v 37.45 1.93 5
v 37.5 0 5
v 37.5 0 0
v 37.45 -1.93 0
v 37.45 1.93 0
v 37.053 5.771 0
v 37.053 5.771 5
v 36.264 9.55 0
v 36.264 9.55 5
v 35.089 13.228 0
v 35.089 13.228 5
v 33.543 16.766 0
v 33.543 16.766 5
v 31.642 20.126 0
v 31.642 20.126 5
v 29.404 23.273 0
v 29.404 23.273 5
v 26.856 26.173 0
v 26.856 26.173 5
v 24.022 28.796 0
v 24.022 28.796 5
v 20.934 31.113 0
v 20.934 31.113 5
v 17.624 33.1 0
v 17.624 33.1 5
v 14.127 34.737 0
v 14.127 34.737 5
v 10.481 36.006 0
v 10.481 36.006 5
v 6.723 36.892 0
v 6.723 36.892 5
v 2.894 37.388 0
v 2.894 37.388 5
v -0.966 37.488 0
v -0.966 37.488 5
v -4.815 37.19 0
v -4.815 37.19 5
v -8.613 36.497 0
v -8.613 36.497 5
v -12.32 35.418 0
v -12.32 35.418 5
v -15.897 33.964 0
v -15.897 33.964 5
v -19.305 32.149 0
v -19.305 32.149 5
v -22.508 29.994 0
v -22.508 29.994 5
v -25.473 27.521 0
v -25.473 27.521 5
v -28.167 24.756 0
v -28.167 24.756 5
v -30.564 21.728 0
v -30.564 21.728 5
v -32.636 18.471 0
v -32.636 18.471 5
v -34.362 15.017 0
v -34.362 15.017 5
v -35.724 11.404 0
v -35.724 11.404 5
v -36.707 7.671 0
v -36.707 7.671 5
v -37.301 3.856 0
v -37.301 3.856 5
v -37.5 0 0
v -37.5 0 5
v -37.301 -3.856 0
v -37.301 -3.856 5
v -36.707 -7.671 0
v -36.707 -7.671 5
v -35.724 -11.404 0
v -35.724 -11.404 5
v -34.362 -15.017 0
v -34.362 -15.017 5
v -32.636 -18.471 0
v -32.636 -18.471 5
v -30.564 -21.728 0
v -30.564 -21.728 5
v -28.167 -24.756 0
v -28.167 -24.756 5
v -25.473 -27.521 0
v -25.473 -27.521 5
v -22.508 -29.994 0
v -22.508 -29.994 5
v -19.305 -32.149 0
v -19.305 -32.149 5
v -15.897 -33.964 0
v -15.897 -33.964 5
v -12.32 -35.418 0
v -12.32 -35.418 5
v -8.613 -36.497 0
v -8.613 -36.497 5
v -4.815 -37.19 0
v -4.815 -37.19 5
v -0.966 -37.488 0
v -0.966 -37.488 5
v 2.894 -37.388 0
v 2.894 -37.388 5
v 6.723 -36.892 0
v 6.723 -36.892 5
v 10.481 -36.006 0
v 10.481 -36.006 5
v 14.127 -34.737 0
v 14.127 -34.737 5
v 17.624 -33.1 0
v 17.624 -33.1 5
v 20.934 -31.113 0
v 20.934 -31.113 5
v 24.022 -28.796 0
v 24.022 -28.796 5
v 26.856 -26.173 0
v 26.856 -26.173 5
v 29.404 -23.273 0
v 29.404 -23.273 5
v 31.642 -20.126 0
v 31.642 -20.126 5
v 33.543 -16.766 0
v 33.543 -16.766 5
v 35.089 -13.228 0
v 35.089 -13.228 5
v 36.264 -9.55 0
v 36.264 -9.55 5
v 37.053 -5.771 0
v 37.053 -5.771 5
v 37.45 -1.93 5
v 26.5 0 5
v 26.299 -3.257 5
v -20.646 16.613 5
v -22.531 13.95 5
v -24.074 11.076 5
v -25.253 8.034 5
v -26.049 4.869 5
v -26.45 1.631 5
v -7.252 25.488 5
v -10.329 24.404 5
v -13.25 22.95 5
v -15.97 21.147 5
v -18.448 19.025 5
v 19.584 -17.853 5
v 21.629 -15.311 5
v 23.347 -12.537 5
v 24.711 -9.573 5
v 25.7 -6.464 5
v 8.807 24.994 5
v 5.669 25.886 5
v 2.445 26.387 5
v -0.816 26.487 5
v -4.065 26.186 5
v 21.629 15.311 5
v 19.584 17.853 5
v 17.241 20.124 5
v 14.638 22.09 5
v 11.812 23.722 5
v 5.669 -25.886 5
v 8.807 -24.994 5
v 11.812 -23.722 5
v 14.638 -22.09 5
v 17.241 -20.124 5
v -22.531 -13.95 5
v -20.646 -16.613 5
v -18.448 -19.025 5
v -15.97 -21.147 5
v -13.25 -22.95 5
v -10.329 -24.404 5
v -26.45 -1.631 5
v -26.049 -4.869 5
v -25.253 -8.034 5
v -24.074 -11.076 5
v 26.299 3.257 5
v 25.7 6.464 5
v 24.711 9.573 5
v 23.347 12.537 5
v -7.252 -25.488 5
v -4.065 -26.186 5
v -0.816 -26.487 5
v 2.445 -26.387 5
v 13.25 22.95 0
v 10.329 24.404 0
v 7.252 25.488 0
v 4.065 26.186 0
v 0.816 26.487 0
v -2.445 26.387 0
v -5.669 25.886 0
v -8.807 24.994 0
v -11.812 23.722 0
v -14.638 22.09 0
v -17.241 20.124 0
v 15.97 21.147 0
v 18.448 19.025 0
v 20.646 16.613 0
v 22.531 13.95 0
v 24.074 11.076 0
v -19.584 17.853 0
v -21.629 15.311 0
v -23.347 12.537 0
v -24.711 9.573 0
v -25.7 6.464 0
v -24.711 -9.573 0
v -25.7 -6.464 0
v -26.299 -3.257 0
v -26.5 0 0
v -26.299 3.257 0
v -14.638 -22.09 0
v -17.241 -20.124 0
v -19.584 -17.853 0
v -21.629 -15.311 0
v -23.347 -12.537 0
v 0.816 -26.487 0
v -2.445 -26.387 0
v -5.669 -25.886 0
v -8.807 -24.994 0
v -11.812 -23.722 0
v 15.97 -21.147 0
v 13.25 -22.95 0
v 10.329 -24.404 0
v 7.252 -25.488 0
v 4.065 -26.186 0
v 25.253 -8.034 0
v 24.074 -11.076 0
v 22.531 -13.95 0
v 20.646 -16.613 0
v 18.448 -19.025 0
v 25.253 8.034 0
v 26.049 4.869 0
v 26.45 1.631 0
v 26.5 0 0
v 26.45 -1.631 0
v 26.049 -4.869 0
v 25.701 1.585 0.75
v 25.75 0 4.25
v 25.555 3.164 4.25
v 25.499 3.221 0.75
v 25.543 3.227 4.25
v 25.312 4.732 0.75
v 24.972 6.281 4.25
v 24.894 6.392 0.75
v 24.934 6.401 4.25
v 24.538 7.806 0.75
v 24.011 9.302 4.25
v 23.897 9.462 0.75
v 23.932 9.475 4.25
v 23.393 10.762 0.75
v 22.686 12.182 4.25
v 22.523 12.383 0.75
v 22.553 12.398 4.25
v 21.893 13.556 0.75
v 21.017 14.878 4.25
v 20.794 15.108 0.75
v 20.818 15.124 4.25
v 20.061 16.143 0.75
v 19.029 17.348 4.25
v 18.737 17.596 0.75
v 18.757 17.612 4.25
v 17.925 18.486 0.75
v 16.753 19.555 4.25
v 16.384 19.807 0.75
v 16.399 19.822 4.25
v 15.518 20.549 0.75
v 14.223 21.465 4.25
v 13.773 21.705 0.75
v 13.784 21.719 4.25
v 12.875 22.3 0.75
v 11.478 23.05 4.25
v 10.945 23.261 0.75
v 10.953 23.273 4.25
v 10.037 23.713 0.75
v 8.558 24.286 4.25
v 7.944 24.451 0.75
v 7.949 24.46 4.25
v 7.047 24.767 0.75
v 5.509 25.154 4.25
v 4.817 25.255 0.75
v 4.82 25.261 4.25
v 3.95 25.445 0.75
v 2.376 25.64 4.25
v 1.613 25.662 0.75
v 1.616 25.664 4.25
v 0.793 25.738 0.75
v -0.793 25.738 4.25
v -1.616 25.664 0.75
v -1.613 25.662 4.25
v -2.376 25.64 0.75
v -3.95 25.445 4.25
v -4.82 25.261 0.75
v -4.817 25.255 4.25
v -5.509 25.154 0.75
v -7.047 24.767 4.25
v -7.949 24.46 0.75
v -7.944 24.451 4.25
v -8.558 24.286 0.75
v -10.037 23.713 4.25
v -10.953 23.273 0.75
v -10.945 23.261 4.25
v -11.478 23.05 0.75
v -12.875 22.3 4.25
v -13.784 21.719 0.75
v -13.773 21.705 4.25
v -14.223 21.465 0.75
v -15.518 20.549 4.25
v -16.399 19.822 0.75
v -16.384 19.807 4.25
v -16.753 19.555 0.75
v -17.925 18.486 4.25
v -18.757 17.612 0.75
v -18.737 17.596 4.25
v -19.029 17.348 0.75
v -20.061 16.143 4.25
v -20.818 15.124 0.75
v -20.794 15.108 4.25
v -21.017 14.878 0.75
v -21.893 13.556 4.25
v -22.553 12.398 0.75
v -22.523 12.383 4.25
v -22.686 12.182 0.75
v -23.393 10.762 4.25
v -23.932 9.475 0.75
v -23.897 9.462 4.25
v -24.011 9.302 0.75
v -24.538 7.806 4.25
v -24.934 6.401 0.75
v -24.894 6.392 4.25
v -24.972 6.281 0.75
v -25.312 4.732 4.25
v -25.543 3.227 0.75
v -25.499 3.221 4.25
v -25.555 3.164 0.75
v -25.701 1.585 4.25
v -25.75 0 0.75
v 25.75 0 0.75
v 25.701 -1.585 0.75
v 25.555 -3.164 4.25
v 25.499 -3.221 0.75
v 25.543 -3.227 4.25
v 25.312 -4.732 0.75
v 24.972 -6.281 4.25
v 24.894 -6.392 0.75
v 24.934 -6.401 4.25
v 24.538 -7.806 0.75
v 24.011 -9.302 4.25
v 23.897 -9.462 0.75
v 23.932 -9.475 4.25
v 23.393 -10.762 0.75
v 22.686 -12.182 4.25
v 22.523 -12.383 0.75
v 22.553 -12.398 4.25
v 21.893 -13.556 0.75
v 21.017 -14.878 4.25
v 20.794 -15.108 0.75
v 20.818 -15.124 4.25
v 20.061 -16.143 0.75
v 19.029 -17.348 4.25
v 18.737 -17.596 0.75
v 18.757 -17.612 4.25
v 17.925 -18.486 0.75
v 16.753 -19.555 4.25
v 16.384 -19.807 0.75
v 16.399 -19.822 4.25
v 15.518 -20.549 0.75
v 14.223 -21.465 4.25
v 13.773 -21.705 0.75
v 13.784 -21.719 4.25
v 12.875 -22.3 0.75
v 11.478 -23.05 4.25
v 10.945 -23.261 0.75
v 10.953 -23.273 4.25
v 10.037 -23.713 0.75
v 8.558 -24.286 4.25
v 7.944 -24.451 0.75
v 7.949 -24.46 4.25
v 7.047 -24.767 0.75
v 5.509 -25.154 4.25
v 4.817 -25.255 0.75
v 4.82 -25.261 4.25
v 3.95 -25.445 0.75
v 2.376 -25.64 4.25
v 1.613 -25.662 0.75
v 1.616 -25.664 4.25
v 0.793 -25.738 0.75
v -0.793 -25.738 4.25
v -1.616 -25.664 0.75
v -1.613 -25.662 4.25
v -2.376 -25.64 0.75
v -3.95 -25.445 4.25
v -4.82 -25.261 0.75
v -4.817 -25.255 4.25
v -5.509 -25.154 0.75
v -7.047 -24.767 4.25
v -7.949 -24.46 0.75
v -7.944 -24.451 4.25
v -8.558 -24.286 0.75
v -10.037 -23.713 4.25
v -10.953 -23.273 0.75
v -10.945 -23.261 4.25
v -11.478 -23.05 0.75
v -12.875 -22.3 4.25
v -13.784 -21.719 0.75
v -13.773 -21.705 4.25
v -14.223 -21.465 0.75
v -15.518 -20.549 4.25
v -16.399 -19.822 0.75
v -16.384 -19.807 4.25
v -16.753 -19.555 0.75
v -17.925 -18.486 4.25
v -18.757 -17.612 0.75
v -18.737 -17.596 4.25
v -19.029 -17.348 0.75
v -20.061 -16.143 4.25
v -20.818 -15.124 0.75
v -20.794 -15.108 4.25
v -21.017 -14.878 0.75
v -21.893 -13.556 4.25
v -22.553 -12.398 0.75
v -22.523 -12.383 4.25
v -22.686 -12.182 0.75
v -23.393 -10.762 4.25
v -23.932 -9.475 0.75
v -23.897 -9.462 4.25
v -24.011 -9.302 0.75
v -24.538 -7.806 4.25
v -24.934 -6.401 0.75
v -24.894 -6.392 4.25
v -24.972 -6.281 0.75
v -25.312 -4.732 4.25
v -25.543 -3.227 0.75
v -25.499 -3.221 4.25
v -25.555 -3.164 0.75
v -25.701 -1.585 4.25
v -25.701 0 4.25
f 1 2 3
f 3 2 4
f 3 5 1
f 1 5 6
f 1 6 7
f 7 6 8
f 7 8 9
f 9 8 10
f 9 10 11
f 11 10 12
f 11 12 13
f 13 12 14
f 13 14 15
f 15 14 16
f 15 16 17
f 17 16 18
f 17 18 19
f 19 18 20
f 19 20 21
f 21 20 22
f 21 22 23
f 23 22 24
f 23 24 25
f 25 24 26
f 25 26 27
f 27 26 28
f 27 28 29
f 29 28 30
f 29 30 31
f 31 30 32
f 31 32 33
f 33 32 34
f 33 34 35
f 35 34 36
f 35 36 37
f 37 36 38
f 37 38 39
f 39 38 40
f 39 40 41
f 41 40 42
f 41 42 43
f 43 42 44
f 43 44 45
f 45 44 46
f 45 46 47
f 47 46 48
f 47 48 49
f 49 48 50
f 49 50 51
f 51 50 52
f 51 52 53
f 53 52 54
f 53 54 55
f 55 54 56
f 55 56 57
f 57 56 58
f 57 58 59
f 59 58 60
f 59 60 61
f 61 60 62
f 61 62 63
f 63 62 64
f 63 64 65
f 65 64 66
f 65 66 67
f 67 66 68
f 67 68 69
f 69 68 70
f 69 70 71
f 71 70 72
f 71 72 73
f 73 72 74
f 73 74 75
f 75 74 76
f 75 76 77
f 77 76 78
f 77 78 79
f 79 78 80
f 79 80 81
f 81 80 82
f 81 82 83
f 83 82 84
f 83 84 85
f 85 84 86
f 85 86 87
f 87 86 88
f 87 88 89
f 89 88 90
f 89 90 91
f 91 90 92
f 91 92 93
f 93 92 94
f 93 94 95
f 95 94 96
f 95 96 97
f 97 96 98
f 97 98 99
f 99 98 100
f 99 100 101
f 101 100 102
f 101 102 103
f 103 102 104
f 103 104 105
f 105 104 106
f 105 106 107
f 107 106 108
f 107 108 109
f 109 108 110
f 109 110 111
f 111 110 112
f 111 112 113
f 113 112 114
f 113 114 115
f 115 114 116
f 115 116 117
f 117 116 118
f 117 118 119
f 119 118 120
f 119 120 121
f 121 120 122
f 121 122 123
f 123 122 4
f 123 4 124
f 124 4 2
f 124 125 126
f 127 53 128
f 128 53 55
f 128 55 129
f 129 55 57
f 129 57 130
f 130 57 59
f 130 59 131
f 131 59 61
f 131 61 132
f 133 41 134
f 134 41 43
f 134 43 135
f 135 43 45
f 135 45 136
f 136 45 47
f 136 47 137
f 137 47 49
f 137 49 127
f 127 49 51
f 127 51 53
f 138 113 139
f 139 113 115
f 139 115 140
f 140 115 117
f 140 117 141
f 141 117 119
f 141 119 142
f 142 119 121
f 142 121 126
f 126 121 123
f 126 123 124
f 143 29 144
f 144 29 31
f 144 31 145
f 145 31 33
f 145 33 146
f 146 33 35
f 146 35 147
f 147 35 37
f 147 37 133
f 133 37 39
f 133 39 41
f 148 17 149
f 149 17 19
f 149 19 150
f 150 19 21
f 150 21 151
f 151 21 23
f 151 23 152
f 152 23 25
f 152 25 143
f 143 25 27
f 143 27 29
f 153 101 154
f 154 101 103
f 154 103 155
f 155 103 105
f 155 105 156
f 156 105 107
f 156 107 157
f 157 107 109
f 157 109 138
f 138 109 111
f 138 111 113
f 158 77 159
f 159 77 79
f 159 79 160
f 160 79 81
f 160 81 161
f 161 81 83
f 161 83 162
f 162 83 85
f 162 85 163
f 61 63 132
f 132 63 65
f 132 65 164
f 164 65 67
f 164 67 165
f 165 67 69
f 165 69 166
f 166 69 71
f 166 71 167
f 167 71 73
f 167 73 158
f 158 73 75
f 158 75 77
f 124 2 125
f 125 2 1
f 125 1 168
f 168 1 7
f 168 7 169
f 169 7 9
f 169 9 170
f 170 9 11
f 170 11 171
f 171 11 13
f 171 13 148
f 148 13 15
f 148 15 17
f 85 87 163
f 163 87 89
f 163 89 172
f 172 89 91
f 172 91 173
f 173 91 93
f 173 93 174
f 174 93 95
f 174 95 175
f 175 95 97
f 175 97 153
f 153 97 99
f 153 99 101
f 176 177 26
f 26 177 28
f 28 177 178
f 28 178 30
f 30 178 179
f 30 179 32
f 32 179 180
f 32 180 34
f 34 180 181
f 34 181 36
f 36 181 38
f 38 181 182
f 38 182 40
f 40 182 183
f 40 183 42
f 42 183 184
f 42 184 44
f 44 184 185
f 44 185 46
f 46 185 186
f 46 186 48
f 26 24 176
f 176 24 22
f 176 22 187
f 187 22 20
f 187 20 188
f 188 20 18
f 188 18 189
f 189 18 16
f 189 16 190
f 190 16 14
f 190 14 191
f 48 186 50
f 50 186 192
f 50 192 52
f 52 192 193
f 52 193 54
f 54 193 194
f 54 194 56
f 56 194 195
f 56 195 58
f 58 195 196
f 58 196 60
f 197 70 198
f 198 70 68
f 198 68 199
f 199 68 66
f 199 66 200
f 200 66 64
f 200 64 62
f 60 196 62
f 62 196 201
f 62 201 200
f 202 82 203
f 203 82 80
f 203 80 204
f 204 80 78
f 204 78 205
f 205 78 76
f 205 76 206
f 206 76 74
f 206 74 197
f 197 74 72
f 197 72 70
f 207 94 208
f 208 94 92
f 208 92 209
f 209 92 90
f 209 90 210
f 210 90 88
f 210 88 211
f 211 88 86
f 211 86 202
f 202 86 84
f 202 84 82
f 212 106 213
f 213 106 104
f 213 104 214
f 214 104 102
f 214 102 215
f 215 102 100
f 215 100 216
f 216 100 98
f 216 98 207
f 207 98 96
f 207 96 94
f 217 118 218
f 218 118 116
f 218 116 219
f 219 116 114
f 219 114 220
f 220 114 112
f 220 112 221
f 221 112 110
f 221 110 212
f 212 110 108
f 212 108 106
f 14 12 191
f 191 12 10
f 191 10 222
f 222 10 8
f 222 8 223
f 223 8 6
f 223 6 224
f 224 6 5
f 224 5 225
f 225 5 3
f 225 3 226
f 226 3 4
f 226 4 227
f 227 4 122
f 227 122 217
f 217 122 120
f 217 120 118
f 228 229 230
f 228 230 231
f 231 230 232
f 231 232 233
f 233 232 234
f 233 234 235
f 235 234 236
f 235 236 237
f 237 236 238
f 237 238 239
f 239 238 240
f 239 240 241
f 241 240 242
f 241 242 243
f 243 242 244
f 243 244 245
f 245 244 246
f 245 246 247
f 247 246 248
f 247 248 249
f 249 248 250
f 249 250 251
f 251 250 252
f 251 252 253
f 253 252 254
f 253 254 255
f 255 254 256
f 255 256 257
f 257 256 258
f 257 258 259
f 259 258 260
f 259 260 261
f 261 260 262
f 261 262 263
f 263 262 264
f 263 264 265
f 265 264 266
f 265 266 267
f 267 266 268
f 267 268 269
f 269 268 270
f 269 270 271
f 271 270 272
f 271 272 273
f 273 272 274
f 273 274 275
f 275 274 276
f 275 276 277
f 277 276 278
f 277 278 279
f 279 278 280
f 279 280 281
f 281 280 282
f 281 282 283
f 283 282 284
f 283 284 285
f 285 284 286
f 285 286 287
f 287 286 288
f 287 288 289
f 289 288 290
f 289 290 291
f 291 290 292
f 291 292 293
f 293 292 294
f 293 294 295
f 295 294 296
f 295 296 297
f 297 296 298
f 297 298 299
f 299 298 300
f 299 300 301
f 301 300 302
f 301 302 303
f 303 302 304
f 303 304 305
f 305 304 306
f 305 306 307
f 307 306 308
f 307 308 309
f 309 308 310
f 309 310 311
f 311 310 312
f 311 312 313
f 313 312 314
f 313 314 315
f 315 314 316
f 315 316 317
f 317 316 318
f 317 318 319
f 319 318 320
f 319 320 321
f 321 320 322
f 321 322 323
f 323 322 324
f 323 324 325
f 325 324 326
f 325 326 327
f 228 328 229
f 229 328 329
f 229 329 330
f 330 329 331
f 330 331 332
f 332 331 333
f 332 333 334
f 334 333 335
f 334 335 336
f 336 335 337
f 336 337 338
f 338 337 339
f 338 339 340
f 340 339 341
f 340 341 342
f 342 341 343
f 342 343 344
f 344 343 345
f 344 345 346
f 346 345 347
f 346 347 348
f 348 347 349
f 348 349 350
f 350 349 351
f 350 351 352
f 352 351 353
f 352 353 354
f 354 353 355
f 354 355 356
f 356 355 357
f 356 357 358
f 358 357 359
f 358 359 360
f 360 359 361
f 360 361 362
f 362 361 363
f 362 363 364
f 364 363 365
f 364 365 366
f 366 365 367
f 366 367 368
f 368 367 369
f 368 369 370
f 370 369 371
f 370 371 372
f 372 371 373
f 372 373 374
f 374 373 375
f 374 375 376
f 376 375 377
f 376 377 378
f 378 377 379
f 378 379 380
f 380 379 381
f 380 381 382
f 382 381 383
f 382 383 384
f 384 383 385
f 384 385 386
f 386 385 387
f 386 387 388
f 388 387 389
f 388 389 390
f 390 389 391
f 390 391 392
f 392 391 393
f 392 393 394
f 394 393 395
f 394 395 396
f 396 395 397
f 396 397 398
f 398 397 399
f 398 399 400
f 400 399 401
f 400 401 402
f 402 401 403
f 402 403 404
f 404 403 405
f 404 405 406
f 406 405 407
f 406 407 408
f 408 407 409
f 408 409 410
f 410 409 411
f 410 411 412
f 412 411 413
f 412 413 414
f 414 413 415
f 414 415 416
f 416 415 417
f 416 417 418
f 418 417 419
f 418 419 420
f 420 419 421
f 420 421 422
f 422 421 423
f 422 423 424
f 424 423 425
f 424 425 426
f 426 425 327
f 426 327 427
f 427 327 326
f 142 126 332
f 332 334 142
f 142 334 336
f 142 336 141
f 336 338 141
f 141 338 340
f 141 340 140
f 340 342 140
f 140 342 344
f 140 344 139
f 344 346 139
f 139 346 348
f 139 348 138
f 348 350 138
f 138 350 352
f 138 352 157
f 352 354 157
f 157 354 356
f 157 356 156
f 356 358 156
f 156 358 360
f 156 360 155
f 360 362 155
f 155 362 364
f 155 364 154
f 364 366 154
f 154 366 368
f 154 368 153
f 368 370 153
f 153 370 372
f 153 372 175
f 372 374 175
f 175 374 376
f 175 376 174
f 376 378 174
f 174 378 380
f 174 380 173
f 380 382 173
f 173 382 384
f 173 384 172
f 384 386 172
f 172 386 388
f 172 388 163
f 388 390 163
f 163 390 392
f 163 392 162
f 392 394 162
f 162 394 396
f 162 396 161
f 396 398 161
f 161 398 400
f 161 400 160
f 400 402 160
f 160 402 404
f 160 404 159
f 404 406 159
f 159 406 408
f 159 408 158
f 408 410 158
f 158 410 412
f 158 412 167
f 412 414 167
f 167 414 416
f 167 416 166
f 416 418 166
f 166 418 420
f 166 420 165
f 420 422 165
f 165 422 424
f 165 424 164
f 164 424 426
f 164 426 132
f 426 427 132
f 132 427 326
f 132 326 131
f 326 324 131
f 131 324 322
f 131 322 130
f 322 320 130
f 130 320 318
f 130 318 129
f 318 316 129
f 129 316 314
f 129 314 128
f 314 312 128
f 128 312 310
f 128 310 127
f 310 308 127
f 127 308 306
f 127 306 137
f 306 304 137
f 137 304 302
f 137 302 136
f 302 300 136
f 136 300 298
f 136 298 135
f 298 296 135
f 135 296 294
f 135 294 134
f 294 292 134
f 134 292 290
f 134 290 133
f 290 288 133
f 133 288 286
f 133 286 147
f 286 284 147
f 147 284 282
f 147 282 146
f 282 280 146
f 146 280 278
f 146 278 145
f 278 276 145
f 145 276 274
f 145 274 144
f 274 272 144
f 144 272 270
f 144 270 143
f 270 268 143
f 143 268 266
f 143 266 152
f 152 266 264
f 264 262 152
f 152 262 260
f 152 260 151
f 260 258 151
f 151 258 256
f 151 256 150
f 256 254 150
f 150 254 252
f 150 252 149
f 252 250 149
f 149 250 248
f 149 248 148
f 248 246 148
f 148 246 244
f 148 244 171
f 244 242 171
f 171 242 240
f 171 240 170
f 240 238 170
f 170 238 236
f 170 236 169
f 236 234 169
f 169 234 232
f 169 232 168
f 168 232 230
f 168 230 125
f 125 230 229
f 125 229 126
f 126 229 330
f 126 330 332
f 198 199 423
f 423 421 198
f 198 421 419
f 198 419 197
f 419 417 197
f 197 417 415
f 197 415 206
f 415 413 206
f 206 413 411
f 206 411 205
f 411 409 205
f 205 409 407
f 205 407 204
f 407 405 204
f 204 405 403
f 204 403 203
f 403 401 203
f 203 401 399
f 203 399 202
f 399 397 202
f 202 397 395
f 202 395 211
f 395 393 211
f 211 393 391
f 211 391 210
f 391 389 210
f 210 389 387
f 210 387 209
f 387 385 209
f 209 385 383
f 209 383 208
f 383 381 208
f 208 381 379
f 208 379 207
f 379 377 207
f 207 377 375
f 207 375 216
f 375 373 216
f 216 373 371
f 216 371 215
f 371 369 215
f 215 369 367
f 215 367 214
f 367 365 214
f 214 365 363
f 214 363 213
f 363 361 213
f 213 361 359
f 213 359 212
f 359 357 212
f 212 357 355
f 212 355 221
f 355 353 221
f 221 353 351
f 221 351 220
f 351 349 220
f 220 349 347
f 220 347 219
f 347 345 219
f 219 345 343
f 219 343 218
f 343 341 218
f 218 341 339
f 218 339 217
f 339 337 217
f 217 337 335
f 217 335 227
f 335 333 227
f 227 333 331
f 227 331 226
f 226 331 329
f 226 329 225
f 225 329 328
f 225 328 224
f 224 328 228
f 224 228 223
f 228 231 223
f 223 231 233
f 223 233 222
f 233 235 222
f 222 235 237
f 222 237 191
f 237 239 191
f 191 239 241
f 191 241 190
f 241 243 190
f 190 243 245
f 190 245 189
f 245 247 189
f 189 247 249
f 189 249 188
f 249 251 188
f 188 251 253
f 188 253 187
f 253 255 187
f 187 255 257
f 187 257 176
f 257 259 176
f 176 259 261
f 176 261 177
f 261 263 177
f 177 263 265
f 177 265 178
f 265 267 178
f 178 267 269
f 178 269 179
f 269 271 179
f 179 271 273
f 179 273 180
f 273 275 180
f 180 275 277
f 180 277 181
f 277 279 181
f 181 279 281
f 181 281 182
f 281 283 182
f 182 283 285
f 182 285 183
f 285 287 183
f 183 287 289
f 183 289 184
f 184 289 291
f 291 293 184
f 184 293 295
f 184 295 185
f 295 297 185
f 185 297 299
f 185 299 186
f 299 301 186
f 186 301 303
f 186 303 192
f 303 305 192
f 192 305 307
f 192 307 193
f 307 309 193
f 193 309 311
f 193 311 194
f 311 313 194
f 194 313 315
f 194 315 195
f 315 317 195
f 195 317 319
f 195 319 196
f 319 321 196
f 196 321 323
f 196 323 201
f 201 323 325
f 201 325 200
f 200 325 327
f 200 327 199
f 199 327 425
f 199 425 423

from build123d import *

# Parameters (mm, degrees)
GUARD_BASE_R     = 37.5
GUARD_DEPTH      = 5
AXLE_HOLE_BASE_R = 25.75
AXLE_HOLE_DEPTH  = 6


with BuildPart() as part:
    # Guard base → Guard (new body)
    with BuildSketch(Plane.XY):
        Circle(GUARD_BASE_R)
    extrude(amount=GUARD_DEPTH)

    # Axle hole base → Axle hole (cut, through all)
    with BuildSketch(Plane.XY.offset(5)):
        Circle(AXLE_HOLE_BASE_R)
    extrude(amount=-AXLE_HOLE_DEPTH, mode=Mode.SUBTRACT)

    # Mate ring room base → Mate ring room (revolve, cut)
    with BuildSketch(Plane(origin=(0, 0, 0), x_dir=(1, 0, 0), z_dir=(0, 1, 0))):
        Polygon((25.75, -5), (26.5, -5), (25.75, -4.25), align=None)
        Polygon((25.75, 0), (26.5, 0), (25.75, -0.75), align=None)
    revolve(axis=Axis((0, 0, 0), (0, 0, -1)), mode=Mode.SUBTRACT)


solid = part.part
